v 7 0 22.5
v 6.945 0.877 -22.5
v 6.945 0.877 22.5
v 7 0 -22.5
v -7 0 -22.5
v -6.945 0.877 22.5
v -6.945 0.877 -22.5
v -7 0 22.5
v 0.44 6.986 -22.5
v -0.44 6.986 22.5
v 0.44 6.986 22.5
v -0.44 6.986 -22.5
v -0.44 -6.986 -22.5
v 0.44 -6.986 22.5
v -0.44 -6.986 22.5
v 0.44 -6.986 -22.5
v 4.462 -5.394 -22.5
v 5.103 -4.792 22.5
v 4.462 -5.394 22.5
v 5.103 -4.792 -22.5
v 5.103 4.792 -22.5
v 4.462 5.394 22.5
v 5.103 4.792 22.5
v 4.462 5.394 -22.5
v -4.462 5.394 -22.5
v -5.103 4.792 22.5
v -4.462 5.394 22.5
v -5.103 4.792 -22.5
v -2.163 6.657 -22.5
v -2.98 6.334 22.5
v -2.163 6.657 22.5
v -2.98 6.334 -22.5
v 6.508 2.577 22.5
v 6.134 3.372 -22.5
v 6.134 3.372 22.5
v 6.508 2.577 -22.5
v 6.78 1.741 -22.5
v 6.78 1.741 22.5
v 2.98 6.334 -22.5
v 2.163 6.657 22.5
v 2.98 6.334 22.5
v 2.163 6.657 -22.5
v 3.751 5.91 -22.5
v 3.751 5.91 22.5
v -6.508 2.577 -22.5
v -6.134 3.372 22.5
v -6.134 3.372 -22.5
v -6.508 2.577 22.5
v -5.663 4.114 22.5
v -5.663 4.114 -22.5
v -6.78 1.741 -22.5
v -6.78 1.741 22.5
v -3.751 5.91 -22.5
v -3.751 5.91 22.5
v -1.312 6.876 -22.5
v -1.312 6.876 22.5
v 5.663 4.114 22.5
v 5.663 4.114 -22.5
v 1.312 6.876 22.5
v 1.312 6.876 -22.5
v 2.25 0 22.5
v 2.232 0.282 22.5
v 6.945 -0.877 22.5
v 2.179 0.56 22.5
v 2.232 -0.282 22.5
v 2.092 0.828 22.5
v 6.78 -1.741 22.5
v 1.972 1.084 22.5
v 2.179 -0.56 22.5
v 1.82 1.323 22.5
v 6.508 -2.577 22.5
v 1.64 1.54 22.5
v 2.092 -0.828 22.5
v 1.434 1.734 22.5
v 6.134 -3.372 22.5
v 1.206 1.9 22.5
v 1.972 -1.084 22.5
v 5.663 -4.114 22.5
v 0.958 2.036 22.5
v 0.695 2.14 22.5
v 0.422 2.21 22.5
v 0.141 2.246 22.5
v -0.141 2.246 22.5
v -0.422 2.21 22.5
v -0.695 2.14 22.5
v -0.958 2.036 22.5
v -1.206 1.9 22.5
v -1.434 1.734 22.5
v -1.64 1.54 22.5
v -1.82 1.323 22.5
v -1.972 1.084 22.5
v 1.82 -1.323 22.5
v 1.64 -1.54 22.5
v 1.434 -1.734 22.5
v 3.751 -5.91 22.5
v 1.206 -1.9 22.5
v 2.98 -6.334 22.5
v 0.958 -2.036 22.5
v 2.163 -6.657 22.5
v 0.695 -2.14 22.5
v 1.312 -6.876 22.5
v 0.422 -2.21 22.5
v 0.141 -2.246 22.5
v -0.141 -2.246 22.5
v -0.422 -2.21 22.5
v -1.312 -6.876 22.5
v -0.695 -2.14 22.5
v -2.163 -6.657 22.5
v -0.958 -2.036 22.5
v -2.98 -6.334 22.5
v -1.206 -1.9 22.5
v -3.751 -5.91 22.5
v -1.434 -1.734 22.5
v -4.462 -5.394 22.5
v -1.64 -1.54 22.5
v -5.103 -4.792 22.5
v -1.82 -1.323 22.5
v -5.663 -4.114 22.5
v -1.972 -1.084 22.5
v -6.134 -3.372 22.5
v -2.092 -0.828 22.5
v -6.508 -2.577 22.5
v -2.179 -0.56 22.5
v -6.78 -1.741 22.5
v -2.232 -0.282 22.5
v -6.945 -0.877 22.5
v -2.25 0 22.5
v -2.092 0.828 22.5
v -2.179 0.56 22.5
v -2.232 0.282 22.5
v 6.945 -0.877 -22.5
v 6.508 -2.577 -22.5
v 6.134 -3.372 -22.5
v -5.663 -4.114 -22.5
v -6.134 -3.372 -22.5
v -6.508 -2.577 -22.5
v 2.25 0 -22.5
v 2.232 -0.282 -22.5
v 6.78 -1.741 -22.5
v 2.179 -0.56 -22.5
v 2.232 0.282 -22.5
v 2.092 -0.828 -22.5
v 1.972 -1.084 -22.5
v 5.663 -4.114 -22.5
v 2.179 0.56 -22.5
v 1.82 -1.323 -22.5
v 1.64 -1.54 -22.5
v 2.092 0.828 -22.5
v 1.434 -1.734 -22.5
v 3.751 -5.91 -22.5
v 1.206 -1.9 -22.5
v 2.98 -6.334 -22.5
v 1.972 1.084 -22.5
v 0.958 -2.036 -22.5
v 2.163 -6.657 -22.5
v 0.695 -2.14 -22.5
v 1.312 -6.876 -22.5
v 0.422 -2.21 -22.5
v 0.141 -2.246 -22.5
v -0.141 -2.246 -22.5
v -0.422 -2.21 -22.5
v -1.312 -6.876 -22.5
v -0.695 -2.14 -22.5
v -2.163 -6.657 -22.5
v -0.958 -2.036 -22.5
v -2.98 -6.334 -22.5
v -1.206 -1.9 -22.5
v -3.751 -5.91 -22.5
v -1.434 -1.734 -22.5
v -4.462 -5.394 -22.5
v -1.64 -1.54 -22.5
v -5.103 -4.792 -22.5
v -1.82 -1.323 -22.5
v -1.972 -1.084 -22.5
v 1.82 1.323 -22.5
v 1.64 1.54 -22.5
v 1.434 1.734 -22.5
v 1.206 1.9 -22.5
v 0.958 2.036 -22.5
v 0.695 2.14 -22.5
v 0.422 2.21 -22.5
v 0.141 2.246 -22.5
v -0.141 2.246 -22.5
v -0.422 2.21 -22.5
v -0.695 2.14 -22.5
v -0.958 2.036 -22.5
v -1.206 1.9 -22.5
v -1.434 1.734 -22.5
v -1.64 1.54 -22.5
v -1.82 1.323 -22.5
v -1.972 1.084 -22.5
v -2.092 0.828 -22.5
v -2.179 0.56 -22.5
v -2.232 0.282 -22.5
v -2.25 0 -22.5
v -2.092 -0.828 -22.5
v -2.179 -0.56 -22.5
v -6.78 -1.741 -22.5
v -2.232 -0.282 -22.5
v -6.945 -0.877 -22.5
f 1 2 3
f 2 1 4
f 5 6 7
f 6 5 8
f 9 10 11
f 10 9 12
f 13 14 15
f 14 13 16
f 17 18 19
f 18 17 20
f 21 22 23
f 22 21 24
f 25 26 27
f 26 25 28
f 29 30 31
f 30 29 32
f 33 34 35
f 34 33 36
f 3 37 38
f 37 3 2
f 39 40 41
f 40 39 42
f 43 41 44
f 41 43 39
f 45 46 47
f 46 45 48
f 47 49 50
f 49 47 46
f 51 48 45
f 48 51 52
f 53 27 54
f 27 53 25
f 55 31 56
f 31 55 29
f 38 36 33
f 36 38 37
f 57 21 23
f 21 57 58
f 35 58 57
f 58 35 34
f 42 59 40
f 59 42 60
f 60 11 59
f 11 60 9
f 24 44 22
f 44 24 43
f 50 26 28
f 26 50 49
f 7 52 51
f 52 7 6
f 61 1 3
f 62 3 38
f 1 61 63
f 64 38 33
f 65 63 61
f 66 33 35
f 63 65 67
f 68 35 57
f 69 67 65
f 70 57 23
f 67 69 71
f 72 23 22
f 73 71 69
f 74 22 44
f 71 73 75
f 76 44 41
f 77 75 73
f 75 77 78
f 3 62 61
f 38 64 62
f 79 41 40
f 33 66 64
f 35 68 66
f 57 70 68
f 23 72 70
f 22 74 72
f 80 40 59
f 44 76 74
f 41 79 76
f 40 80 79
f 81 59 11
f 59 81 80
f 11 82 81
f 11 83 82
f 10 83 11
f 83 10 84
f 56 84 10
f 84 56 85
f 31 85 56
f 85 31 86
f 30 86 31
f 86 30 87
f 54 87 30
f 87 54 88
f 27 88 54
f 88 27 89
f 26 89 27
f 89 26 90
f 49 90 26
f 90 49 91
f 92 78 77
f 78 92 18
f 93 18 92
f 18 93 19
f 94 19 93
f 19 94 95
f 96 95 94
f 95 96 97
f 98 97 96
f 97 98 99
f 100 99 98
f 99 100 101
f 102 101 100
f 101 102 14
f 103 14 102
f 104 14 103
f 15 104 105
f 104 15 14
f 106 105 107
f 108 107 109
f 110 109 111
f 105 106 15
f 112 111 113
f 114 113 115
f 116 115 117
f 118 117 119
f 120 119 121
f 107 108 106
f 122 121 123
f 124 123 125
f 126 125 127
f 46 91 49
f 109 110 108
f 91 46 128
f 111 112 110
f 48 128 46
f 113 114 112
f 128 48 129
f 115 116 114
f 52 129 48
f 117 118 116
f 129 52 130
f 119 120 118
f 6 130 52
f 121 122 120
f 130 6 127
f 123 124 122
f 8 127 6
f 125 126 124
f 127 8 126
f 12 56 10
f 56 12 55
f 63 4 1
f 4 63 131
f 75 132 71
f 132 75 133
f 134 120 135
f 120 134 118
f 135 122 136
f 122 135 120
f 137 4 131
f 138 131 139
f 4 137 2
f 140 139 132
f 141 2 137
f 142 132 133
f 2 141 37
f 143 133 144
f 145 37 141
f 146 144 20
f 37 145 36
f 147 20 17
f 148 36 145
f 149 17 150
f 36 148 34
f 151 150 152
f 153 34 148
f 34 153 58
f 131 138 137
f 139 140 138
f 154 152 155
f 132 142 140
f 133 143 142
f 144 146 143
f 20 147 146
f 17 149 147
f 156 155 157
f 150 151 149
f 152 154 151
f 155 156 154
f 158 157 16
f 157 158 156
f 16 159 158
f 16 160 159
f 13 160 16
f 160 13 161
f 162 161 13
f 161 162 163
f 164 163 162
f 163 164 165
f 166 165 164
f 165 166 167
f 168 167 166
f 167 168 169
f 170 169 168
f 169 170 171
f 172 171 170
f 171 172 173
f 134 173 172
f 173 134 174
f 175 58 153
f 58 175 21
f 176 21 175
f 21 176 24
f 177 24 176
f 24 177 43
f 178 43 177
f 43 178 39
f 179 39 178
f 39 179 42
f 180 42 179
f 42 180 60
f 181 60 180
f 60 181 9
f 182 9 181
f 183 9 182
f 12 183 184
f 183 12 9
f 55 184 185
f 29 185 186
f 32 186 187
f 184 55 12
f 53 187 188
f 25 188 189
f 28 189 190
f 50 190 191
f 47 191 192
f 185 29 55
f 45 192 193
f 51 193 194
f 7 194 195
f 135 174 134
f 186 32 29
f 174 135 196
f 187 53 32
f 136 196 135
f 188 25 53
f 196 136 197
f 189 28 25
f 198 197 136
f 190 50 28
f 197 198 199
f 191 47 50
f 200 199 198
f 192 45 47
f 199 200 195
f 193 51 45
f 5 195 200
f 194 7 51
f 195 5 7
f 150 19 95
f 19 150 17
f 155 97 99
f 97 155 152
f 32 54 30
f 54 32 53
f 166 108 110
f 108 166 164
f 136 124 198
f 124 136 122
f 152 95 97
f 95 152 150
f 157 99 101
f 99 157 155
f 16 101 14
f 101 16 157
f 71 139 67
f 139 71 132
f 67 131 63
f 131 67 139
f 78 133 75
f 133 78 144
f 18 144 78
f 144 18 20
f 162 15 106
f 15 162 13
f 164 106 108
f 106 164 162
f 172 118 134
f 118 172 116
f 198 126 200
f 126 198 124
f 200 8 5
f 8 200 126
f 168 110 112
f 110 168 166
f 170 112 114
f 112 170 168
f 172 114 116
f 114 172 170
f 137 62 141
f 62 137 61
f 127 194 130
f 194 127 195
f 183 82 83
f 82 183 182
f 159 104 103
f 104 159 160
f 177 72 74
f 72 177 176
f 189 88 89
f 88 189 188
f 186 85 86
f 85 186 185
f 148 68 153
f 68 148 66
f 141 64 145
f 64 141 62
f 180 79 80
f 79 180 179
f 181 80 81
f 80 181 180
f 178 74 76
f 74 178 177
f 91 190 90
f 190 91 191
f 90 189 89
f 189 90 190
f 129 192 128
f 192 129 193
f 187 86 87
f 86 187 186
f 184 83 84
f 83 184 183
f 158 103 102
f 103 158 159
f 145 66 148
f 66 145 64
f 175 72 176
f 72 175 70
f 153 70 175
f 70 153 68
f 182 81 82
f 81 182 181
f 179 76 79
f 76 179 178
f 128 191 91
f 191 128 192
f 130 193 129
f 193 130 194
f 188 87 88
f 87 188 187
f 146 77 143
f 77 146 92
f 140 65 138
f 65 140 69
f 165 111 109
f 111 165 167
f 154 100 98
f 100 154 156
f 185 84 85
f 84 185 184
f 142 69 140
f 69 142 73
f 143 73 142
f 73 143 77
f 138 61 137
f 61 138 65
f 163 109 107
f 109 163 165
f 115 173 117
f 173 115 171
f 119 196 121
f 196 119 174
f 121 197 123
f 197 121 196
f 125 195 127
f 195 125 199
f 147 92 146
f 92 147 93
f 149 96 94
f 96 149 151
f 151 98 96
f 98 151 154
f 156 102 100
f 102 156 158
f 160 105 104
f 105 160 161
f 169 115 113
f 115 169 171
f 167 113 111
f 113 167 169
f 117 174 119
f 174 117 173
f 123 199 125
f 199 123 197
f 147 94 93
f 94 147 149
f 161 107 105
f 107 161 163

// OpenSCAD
$fn = 50;


difference() {
	union() {
		translate(v = [0, 0, -22.5000000000]) {
			cylinder(h = 45, r = 7.0000000000);
		}
	}
	union() {
		translate(v = [0, 0, -100.0000000000]) {
			cylinder(h = 200, r = 2.2500000000);
		}
	}
}
